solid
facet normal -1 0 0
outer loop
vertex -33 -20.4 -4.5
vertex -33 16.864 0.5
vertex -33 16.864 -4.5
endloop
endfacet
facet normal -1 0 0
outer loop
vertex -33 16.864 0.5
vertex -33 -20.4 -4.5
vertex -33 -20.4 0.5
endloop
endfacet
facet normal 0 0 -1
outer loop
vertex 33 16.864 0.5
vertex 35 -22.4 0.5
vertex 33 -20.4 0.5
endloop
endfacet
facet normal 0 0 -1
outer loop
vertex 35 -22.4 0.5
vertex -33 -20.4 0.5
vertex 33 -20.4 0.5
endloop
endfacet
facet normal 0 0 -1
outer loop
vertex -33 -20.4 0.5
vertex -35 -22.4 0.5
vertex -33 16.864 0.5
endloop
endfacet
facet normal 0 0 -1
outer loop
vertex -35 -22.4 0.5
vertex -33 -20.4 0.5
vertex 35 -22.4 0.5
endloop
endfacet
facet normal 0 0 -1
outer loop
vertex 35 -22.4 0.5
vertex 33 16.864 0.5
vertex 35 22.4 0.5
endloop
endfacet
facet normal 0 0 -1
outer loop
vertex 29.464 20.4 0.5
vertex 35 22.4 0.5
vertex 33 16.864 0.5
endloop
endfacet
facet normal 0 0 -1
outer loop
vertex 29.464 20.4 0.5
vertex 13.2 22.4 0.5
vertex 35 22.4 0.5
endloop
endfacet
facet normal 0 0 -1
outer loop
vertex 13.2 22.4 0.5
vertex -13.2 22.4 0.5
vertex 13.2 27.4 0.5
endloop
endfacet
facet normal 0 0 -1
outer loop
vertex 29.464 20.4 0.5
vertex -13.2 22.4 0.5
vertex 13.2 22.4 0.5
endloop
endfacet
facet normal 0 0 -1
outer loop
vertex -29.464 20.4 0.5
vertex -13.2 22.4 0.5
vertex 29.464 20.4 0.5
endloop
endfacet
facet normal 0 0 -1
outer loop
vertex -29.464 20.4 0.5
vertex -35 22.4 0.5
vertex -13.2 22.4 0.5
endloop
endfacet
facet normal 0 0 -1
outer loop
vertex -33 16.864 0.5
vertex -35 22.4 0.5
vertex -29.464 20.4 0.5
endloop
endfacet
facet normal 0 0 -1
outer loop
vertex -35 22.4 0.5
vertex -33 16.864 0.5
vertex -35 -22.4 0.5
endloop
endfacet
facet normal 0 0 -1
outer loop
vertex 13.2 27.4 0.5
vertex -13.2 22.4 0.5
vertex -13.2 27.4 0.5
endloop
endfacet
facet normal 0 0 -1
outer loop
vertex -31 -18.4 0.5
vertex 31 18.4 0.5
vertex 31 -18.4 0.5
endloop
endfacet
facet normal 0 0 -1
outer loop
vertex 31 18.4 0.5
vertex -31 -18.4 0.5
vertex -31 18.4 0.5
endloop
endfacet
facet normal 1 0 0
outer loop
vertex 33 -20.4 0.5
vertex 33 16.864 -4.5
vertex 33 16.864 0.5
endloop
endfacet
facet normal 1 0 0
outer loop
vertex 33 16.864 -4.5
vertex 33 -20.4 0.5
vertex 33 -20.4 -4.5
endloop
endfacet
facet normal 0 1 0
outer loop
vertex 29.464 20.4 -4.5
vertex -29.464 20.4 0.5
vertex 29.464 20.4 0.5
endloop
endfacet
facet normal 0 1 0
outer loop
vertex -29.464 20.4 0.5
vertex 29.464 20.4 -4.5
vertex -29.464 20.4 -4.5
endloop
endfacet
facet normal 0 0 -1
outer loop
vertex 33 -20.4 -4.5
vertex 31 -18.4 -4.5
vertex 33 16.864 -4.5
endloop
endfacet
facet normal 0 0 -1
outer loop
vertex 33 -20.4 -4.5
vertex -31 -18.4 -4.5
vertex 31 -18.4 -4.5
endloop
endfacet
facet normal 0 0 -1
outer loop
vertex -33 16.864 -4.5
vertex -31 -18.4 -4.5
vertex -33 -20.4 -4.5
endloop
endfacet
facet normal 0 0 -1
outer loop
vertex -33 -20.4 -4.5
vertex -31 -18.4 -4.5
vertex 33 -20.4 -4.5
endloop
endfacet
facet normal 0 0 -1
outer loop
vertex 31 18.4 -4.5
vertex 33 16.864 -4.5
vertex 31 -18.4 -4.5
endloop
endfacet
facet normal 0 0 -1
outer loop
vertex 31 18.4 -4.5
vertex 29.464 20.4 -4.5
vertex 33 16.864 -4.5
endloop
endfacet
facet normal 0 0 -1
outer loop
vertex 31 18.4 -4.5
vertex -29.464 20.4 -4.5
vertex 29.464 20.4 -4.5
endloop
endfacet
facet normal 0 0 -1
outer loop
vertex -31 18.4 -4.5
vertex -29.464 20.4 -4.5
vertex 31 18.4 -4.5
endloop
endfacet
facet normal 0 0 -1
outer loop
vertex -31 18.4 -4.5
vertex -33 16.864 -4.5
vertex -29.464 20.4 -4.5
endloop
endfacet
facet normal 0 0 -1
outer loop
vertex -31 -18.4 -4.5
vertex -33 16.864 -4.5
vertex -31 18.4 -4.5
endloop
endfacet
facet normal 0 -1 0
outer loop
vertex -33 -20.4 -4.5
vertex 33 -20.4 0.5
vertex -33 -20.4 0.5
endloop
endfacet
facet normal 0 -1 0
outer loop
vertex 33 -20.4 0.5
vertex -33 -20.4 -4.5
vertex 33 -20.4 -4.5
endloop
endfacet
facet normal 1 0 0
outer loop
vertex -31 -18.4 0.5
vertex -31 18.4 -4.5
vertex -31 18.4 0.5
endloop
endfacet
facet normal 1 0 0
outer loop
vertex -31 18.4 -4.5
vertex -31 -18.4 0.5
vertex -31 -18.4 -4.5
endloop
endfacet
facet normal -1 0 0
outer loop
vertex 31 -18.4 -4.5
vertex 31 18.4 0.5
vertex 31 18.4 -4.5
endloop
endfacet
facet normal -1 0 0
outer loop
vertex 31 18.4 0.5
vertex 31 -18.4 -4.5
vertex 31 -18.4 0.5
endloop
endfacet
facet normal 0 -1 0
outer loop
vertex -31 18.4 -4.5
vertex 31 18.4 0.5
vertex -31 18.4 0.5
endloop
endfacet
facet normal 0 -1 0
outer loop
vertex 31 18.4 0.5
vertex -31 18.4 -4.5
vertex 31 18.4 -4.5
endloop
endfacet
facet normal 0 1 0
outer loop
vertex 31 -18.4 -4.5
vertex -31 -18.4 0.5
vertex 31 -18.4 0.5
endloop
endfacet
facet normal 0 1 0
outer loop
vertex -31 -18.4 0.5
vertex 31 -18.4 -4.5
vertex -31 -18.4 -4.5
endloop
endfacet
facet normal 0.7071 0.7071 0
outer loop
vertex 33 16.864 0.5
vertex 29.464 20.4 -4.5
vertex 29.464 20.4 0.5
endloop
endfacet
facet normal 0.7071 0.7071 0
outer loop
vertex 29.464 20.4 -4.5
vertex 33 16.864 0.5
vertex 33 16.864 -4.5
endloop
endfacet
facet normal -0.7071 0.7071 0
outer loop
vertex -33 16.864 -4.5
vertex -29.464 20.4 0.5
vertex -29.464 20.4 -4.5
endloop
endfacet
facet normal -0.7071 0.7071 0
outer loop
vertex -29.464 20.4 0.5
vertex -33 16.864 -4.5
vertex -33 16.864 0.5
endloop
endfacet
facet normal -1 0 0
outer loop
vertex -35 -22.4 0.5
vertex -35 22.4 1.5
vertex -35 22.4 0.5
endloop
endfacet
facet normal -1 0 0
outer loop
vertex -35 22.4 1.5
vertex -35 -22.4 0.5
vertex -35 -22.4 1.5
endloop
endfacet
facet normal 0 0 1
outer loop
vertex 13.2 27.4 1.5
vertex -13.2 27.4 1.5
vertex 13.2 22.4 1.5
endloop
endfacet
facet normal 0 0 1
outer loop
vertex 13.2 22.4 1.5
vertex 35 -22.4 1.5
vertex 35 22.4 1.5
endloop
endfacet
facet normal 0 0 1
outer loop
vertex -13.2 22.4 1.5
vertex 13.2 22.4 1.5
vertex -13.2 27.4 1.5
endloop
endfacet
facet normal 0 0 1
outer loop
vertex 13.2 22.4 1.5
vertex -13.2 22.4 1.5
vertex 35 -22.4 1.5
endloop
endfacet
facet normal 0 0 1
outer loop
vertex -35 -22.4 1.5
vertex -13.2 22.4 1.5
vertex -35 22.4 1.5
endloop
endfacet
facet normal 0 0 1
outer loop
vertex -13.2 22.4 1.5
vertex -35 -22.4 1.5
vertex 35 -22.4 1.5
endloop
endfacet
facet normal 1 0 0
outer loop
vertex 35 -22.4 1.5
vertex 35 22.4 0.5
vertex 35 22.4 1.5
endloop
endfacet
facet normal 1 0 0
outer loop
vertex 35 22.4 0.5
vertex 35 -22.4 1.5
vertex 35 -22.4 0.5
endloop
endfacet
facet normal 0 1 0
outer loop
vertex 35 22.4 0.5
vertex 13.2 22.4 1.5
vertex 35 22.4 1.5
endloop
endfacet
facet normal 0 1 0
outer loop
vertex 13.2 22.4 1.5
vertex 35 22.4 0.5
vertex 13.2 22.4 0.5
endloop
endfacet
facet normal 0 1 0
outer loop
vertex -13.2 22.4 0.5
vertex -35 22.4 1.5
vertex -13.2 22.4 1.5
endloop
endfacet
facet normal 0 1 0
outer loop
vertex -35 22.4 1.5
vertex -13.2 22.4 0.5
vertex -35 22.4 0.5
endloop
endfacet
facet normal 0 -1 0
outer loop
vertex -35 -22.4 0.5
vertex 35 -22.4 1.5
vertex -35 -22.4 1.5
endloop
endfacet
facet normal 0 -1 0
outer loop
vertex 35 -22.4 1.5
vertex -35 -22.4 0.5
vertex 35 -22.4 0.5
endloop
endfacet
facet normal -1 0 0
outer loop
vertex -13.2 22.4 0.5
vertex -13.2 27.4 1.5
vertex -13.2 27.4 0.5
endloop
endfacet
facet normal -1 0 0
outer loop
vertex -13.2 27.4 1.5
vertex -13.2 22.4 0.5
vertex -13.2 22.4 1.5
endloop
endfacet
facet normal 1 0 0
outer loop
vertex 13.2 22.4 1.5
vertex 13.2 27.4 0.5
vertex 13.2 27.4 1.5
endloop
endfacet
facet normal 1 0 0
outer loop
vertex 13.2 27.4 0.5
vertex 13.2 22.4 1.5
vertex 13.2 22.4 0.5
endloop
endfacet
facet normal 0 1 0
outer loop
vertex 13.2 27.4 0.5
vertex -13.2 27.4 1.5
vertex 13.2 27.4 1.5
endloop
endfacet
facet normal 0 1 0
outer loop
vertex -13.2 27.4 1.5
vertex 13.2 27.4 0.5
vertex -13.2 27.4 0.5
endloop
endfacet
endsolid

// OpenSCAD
border_width = 4;
inner_width = 66;
inner_depth = 40.8;
height = 1;

union() {
    inner_ring();
    translate([0,0,height]) {
        top_lit();
    }
    translate([0,inner_depth/2,height]) {
        latch();
    }
}

module inner_ring() {
   ring_height = 5;
    translate([0,0,-2]) {
        difference() {
            cube([inner_width,inner_depth,ring_height], true);
            cube([inner_width-border_width,inner_depth-border_width,ring_height], true);
            
            translate([inner_width/2,inner_depth/2,0]) {
                rotate([0,0,45]) {
                    #cube(ring_height, true);
                }
            }
            translate([-inner_width/2,inner_depth/2,0]) {
                rotate([0,0,45]) {
                    #cube(ring_height, true);
                }
            }
        }
    }
}

module top_lit() {
    cube([inner_width+border_width,inner_depth+border_width, height], true);
}

module latch() {
    latch_width = inner_width/2.5;
    latch_depth = 7;
    cube([latch_width,latch_depth*2,height], true);
}
